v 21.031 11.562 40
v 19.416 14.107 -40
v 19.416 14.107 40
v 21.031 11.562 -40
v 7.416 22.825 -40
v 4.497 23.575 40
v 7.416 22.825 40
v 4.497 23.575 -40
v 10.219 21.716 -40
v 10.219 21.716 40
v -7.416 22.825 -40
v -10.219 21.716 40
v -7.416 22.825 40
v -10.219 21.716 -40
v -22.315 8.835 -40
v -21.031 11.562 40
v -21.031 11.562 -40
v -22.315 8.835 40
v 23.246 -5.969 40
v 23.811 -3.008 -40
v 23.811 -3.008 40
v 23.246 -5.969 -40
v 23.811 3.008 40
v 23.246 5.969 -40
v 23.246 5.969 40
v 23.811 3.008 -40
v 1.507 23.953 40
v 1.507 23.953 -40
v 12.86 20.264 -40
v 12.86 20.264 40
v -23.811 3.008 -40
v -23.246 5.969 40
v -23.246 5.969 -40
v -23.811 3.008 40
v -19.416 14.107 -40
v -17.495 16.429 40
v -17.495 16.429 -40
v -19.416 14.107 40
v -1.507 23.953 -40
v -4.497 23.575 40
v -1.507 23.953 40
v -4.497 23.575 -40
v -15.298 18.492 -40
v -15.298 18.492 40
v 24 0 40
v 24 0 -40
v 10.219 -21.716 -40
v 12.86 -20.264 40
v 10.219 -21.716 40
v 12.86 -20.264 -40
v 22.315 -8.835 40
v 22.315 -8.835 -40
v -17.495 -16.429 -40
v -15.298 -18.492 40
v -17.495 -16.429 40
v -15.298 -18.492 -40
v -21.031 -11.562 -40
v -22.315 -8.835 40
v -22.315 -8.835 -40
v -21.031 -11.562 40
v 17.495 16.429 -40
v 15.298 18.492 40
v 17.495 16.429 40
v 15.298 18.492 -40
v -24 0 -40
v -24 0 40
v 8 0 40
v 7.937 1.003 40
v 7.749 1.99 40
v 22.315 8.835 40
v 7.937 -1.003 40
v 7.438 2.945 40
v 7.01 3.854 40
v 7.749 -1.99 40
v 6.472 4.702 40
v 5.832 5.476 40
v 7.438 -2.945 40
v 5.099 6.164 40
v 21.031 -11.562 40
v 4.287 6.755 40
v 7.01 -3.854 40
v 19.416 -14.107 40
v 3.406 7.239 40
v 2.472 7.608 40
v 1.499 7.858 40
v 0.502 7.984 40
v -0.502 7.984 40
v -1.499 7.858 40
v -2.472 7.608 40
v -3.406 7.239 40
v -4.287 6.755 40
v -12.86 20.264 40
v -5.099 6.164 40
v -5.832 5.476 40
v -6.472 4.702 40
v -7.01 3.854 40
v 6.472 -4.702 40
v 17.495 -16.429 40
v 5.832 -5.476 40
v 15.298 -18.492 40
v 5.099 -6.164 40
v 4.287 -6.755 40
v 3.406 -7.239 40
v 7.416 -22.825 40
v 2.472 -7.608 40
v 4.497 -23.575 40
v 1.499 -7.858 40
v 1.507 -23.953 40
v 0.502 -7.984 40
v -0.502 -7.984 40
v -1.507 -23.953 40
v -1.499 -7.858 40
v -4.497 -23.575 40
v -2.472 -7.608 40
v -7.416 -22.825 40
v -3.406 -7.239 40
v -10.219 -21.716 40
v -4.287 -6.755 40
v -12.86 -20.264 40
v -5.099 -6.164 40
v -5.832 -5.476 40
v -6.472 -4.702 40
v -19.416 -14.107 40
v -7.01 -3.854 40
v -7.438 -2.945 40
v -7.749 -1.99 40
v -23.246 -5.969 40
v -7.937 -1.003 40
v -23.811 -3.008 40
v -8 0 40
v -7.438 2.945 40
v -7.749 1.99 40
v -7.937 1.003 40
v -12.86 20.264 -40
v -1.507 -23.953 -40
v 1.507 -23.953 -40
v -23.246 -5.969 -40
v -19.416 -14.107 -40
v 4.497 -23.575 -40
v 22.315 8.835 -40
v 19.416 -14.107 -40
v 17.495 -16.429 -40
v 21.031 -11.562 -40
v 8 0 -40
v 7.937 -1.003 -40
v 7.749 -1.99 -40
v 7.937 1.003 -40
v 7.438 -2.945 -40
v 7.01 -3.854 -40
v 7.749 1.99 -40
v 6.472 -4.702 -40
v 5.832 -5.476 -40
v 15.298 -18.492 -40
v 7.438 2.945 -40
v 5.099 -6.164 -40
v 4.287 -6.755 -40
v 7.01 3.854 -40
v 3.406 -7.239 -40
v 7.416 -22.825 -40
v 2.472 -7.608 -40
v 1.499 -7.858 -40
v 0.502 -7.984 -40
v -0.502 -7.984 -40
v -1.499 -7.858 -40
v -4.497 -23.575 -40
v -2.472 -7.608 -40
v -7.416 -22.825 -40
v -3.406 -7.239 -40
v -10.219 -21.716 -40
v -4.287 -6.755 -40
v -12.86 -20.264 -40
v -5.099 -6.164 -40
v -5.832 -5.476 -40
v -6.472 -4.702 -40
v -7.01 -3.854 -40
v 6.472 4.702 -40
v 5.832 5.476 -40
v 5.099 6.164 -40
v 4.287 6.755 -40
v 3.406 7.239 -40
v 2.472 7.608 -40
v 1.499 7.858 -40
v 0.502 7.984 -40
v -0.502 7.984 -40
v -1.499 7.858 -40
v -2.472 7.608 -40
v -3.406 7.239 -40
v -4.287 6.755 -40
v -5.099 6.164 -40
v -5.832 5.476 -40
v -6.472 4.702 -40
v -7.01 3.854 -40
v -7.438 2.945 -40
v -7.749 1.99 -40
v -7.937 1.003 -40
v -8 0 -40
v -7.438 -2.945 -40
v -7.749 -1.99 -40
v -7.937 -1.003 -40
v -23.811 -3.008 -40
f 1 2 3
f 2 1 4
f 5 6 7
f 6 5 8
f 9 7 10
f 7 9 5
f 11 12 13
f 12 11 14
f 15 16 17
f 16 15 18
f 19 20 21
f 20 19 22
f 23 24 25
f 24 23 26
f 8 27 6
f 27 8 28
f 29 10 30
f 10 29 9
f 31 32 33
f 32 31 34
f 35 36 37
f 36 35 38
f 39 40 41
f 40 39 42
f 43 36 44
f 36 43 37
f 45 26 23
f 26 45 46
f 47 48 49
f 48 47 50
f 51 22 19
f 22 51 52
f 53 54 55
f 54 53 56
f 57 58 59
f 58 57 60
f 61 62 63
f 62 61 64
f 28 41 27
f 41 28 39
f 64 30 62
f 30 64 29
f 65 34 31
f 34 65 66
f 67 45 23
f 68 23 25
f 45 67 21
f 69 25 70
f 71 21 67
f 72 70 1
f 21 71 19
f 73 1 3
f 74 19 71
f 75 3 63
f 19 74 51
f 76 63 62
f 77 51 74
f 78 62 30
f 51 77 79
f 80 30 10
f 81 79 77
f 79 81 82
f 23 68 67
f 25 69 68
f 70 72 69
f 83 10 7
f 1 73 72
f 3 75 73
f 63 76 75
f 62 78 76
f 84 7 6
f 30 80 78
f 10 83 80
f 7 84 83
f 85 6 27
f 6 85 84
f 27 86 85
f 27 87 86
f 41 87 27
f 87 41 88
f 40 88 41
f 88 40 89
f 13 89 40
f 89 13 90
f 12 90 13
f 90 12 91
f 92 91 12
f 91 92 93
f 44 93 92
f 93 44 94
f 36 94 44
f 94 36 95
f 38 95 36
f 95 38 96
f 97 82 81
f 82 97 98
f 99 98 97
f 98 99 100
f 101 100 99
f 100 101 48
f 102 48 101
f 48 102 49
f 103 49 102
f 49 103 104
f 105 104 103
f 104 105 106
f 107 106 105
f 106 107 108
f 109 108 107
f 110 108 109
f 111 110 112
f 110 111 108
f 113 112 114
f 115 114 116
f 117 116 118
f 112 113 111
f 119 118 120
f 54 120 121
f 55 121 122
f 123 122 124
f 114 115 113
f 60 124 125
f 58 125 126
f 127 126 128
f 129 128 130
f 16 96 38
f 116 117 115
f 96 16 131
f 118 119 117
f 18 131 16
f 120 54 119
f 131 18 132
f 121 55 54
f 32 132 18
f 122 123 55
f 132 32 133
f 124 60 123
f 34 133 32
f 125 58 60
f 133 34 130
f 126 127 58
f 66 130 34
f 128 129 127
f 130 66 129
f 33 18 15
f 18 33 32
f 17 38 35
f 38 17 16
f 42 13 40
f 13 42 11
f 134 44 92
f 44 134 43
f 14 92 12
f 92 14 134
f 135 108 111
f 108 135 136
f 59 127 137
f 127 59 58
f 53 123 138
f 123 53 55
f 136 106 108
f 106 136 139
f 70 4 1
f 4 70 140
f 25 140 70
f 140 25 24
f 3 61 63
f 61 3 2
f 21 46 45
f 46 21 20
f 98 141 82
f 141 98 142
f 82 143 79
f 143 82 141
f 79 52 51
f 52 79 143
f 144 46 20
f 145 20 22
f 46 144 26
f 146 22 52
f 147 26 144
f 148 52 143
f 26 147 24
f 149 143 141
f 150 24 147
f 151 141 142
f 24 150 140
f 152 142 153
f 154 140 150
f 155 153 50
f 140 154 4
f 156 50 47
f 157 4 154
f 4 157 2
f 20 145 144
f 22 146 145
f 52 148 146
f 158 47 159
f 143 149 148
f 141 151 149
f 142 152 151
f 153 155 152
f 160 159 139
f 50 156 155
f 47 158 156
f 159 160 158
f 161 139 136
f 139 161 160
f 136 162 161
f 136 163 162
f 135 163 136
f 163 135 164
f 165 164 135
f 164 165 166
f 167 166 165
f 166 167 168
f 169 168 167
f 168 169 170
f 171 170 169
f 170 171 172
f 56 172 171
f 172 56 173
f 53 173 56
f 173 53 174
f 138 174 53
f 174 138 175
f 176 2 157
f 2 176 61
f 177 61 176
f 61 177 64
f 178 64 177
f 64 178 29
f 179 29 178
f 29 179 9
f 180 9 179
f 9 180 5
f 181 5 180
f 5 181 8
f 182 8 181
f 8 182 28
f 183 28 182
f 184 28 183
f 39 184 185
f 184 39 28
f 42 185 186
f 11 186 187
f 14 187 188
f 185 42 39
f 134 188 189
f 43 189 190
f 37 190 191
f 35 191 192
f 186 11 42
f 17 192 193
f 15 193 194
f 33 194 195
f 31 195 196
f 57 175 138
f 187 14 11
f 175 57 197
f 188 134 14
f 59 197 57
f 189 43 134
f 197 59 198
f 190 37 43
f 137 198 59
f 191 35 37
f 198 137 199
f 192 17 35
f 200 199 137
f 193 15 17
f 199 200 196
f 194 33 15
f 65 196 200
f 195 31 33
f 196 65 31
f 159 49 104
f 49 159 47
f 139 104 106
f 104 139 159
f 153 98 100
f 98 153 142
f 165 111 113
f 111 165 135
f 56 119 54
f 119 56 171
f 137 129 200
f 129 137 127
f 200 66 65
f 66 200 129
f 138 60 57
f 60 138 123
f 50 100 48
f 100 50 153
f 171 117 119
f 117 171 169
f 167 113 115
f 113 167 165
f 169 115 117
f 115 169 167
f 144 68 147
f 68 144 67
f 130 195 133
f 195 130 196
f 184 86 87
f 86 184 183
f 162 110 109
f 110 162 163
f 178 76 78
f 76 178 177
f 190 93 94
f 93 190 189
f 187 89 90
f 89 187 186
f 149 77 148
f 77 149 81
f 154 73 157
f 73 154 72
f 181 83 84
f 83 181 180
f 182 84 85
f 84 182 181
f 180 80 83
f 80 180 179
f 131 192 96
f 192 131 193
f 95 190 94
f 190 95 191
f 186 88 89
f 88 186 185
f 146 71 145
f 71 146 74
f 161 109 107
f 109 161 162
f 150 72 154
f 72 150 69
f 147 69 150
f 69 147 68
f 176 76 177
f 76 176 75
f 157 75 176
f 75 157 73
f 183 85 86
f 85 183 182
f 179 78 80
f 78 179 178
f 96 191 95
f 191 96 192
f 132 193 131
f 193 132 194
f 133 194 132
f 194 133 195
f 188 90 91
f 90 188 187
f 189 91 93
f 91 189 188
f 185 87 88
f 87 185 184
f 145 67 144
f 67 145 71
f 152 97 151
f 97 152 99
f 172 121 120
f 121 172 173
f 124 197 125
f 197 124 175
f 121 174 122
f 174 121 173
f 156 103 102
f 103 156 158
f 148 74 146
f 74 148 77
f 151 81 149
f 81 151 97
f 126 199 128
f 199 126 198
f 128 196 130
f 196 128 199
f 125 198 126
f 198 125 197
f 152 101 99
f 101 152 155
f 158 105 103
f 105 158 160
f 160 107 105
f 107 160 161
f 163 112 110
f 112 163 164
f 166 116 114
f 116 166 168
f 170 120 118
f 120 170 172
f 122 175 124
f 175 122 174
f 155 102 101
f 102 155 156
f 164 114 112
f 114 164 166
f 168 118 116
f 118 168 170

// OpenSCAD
$fn = 50;


difference() {
	union() {
		translate(v = [0, 0, -40.0000000000]) {
			cylinder(h = 80, r = 24.0000000000);
		}
	}
	union() {
		translate(v = [0, 0, -100.0000000000]) {
			cylinder(h = 200, r = 8);
		}
	}
}
